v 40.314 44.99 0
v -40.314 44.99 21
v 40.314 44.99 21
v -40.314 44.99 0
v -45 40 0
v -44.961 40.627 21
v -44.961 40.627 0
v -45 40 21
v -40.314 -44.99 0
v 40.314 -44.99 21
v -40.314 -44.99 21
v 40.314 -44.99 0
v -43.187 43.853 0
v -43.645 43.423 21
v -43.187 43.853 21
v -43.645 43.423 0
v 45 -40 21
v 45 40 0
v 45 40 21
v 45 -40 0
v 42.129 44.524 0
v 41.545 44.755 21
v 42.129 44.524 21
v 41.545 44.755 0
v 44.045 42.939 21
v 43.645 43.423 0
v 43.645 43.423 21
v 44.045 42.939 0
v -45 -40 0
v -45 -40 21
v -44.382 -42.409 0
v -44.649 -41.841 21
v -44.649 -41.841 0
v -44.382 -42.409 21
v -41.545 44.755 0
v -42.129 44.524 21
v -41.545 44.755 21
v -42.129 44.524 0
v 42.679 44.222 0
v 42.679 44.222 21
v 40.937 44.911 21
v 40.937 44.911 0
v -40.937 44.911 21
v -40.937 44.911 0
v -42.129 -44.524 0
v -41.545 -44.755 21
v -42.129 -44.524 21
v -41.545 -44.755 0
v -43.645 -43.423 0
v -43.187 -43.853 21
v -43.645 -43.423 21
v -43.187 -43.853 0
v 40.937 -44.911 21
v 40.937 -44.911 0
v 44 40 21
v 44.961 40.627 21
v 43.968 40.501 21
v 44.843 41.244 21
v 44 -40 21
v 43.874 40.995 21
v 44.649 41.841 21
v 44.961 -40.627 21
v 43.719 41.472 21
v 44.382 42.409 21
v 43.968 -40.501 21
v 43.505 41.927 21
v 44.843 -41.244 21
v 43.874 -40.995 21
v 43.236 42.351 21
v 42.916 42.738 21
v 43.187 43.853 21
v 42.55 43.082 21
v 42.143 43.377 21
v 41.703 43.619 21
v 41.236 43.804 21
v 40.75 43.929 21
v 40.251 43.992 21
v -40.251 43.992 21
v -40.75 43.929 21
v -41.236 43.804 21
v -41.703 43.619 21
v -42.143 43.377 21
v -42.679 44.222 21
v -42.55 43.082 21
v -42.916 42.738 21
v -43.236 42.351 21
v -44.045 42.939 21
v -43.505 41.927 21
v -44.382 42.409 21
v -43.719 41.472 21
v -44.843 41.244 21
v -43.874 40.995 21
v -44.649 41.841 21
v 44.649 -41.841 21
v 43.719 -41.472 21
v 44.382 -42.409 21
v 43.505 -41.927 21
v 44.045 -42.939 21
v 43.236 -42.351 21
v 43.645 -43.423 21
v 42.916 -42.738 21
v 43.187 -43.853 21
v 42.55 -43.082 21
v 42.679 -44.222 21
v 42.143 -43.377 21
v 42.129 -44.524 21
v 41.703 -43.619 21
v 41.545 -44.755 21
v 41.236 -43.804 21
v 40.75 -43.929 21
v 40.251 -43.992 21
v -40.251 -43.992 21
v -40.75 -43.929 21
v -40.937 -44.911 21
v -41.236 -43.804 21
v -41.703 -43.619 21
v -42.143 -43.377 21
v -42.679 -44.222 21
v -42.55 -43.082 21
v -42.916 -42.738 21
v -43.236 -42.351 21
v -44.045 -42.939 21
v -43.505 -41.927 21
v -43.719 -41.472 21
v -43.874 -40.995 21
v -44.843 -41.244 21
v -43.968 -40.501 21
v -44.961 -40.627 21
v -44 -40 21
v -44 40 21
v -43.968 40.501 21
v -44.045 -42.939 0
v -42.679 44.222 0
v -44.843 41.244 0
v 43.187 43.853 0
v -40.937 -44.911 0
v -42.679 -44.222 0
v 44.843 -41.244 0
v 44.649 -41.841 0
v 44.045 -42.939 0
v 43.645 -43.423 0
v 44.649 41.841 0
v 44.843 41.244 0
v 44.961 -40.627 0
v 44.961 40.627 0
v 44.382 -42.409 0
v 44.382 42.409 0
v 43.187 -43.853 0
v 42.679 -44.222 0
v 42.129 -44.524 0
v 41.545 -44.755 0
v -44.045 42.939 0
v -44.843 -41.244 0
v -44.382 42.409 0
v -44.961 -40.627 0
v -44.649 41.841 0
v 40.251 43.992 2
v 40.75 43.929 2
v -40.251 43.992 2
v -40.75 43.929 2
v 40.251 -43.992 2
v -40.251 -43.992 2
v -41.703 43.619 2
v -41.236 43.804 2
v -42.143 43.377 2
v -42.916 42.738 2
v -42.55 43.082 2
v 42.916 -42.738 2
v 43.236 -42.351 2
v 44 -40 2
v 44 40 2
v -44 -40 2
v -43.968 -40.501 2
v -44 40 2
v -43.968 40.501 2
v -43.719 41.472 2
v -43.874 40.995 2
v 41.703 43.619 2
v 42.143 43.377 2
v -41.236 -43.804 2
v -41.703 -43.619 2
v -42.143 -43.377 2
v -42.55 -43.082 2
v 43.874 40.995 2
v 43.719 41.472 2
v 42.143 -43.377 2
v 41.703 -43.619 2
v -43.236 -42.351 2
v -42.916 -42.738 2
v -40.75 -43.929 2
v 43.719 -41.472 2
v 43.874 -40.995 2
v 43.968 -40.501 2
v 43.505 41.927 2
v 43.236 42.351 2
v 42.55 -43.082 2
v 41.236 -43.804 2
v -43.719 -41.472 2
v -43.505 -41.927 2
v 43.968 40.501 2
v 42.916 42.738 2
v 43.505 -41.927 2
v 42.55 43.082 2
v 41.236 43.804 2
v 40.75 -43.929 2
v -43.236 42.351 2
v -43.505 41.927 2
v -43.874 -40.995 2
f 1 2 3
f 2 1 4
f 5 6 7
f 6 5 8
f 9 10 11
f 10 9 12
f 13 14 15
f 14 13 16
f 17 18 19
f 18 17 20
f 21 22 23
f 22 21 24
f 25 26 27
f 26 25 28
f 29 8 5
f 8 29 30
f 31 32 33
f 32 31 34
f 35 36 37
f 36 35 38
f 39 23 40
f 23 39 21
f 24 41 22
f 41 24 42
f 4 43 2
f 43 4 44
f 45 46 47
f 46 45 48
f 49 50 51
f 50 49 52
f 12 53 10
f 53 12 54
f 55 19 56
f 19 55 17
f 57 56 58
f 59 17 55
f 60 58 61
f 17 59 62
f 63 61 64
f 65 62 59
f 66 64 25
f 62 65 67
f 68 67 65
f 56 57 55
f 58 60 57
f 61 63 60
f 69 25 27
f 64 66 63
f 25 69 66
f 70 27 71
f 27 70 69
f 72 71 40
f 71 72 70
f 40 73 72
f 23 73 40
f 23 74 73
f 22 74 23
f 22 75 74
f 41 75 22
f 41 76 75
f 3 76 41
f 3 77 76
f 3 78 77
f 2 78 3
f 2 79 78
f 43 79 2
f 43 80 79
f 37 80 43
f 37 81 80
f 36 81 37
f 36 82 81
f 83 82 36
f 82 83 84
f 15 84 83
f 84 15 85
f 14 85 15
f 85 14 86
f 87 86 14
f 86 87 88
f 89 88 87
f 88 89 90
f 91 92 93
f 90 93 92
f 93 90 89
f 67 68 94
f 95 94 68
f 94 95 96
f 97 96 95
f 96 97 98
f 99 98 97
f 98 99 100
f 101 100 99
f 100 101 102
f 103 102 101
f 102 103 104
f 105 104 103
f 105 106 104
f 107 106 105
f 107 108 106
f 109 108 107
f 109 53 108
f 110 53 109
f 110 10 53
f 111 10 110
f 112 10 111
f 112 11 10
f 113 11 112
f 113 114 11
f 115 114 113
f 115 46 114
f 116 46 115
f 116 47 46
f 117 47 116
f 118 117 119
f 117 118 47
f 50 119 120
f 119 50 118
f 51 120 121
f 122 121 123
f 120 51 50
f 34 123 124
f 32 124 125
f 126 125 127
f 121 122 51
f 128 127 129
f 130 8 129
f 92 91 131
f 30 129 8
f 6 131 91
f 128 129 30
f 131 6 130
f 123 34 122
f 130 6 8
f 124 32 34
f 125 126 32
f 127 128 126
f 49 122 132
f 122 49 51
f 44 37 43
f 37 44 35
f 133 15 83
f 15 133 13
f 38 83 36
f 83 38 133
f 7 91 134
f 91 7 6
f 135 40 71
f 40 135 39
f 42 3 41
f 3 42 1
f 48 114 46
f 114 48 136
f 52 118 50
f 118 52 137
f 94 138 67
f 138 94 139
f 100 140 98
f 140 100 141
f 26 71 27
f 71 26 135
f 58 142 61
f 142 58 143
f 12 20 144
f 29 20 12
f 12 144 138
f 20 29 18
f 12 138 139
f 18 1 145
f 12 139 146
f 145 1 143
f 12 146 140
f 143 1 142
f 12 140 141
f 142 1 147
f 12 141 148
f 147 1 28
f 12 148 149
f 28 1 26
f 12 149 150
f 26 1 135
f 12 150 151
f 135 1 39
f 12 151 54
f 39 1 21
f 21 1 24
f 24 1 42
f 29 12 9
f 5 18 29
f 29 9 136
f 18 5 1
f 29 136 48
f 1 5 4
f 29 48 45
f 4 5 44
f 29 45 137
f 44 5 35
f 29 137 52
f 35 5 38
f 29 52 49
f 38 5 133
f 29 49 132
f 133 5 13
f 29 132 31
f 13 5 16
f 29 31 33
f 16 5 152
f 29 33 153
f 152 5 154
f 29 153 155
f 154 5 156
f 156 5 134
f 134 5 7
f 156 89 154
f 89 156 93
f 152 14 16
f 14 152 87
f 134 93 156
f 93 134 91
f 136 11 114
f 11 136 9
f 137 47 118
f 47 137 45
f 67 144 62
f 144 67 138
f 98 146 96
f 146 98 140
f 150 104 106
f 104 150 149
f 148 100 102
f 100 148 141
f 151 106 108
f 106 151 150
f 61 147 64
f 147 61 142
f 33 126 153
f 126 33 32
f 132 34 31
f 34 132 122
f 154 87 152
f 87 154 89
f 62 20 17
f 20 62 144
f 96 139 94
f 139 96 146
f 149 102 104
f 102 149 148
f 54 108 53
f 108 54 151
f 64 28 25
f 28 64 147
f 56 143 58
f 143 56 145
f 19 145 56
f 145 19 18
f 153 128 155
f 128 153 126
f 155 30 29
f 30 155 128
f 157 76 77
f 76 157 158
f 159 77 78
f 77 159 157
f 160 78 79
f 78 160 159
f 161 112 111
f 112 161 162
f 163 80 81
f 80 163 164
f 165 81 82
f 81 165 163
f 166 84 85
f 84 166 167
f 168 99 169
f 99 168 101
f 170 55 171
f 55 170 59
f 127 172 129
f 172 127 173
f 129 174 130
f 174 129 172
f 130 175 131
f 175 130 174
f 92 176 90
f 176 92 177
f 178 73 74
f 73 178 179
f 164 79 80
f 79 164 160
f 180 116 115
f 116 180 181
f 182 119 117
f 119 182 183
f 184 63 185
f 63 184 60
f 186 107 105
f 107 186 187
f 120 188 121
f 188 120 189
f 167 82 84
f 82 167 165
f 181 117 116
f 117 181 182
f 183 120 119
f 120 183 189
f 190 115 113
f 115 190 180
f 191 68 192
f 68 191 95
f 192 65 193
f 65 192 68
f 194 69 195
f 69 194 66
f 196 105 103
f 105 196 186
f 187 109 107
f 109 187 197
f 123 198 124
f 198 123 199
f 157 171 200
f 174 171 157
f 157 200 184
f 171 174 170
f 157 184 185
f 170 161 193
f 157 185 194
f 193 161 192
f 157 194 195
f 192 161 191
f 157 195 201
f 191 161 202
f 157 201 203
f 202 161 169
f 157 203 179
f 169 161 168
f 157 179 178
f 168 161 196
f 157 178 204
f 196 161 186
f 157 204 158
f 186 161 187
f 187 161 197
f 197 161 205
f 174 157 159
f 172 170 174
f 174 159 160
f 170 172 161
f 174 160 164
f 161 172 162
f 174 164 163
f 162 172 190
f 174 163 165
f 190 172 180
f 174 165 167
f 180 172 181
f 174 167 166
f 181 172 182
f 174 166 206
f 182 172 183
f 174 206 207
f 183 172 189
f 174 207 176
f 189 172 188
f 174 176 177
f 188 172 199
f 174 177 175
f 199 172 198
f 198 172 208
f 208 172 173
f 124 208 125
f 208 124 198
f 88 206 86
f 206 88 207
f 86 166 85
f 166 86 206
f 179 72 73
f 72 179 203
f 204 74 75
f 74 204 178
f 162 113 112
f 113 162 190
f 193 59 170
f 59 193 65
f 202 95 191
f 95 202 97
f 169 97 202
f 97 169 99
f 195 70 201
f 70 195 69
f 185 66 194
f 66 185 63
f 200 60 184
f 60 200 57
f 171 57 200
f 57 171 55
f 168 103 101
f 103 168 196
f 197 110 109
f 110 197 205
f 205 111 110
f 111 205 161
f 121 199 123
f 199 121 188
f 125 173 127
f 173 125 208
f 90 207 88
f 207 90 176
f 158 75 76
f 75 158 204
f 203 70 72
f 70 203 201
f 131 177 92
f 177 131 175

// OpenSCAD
$fn = 50;


difference() {
	union() {
		hull() {
			translate(v = [-40.0000000000, 40.0000000000, 0]) {
				cylinder(h = 21, r = 5);
			}
			translate(v = [40.0000000000, 40.0000000000, 0]) {
				cylinder(h = 21, r = 5);
			}
			translate(v = [-40.0000000000, -40.0000000000, 0]) {
				cylinder(h = 21, r = 5);
			}
			translate(v = [40.0000000000, -40.0000000000, 0]) {
				cylinder(h = 21, r = 5);
			}
		}
	}
	union() {
		translate(v = [0, 0, 2]) {
			hull() {
				translate(v = [-40.0000000000, 40.0000000000, 0]) {
					cylinder(h = 19, r = 4);
				}
				translate(v = [40.0000000000, 40.0000000000, 0]) {
					cylinder(h = 19, r = 4);
				}
				translate(v = [-40.0000000000, -40.0000000000, 0]) {
					cylinder(h = 19, r = 4);
				}
				translate(v = [40.0000000000, -40.0000000000, 0]) {
					cylinder(h = 19, r = 4);
				}
			}
		}
	}
}
